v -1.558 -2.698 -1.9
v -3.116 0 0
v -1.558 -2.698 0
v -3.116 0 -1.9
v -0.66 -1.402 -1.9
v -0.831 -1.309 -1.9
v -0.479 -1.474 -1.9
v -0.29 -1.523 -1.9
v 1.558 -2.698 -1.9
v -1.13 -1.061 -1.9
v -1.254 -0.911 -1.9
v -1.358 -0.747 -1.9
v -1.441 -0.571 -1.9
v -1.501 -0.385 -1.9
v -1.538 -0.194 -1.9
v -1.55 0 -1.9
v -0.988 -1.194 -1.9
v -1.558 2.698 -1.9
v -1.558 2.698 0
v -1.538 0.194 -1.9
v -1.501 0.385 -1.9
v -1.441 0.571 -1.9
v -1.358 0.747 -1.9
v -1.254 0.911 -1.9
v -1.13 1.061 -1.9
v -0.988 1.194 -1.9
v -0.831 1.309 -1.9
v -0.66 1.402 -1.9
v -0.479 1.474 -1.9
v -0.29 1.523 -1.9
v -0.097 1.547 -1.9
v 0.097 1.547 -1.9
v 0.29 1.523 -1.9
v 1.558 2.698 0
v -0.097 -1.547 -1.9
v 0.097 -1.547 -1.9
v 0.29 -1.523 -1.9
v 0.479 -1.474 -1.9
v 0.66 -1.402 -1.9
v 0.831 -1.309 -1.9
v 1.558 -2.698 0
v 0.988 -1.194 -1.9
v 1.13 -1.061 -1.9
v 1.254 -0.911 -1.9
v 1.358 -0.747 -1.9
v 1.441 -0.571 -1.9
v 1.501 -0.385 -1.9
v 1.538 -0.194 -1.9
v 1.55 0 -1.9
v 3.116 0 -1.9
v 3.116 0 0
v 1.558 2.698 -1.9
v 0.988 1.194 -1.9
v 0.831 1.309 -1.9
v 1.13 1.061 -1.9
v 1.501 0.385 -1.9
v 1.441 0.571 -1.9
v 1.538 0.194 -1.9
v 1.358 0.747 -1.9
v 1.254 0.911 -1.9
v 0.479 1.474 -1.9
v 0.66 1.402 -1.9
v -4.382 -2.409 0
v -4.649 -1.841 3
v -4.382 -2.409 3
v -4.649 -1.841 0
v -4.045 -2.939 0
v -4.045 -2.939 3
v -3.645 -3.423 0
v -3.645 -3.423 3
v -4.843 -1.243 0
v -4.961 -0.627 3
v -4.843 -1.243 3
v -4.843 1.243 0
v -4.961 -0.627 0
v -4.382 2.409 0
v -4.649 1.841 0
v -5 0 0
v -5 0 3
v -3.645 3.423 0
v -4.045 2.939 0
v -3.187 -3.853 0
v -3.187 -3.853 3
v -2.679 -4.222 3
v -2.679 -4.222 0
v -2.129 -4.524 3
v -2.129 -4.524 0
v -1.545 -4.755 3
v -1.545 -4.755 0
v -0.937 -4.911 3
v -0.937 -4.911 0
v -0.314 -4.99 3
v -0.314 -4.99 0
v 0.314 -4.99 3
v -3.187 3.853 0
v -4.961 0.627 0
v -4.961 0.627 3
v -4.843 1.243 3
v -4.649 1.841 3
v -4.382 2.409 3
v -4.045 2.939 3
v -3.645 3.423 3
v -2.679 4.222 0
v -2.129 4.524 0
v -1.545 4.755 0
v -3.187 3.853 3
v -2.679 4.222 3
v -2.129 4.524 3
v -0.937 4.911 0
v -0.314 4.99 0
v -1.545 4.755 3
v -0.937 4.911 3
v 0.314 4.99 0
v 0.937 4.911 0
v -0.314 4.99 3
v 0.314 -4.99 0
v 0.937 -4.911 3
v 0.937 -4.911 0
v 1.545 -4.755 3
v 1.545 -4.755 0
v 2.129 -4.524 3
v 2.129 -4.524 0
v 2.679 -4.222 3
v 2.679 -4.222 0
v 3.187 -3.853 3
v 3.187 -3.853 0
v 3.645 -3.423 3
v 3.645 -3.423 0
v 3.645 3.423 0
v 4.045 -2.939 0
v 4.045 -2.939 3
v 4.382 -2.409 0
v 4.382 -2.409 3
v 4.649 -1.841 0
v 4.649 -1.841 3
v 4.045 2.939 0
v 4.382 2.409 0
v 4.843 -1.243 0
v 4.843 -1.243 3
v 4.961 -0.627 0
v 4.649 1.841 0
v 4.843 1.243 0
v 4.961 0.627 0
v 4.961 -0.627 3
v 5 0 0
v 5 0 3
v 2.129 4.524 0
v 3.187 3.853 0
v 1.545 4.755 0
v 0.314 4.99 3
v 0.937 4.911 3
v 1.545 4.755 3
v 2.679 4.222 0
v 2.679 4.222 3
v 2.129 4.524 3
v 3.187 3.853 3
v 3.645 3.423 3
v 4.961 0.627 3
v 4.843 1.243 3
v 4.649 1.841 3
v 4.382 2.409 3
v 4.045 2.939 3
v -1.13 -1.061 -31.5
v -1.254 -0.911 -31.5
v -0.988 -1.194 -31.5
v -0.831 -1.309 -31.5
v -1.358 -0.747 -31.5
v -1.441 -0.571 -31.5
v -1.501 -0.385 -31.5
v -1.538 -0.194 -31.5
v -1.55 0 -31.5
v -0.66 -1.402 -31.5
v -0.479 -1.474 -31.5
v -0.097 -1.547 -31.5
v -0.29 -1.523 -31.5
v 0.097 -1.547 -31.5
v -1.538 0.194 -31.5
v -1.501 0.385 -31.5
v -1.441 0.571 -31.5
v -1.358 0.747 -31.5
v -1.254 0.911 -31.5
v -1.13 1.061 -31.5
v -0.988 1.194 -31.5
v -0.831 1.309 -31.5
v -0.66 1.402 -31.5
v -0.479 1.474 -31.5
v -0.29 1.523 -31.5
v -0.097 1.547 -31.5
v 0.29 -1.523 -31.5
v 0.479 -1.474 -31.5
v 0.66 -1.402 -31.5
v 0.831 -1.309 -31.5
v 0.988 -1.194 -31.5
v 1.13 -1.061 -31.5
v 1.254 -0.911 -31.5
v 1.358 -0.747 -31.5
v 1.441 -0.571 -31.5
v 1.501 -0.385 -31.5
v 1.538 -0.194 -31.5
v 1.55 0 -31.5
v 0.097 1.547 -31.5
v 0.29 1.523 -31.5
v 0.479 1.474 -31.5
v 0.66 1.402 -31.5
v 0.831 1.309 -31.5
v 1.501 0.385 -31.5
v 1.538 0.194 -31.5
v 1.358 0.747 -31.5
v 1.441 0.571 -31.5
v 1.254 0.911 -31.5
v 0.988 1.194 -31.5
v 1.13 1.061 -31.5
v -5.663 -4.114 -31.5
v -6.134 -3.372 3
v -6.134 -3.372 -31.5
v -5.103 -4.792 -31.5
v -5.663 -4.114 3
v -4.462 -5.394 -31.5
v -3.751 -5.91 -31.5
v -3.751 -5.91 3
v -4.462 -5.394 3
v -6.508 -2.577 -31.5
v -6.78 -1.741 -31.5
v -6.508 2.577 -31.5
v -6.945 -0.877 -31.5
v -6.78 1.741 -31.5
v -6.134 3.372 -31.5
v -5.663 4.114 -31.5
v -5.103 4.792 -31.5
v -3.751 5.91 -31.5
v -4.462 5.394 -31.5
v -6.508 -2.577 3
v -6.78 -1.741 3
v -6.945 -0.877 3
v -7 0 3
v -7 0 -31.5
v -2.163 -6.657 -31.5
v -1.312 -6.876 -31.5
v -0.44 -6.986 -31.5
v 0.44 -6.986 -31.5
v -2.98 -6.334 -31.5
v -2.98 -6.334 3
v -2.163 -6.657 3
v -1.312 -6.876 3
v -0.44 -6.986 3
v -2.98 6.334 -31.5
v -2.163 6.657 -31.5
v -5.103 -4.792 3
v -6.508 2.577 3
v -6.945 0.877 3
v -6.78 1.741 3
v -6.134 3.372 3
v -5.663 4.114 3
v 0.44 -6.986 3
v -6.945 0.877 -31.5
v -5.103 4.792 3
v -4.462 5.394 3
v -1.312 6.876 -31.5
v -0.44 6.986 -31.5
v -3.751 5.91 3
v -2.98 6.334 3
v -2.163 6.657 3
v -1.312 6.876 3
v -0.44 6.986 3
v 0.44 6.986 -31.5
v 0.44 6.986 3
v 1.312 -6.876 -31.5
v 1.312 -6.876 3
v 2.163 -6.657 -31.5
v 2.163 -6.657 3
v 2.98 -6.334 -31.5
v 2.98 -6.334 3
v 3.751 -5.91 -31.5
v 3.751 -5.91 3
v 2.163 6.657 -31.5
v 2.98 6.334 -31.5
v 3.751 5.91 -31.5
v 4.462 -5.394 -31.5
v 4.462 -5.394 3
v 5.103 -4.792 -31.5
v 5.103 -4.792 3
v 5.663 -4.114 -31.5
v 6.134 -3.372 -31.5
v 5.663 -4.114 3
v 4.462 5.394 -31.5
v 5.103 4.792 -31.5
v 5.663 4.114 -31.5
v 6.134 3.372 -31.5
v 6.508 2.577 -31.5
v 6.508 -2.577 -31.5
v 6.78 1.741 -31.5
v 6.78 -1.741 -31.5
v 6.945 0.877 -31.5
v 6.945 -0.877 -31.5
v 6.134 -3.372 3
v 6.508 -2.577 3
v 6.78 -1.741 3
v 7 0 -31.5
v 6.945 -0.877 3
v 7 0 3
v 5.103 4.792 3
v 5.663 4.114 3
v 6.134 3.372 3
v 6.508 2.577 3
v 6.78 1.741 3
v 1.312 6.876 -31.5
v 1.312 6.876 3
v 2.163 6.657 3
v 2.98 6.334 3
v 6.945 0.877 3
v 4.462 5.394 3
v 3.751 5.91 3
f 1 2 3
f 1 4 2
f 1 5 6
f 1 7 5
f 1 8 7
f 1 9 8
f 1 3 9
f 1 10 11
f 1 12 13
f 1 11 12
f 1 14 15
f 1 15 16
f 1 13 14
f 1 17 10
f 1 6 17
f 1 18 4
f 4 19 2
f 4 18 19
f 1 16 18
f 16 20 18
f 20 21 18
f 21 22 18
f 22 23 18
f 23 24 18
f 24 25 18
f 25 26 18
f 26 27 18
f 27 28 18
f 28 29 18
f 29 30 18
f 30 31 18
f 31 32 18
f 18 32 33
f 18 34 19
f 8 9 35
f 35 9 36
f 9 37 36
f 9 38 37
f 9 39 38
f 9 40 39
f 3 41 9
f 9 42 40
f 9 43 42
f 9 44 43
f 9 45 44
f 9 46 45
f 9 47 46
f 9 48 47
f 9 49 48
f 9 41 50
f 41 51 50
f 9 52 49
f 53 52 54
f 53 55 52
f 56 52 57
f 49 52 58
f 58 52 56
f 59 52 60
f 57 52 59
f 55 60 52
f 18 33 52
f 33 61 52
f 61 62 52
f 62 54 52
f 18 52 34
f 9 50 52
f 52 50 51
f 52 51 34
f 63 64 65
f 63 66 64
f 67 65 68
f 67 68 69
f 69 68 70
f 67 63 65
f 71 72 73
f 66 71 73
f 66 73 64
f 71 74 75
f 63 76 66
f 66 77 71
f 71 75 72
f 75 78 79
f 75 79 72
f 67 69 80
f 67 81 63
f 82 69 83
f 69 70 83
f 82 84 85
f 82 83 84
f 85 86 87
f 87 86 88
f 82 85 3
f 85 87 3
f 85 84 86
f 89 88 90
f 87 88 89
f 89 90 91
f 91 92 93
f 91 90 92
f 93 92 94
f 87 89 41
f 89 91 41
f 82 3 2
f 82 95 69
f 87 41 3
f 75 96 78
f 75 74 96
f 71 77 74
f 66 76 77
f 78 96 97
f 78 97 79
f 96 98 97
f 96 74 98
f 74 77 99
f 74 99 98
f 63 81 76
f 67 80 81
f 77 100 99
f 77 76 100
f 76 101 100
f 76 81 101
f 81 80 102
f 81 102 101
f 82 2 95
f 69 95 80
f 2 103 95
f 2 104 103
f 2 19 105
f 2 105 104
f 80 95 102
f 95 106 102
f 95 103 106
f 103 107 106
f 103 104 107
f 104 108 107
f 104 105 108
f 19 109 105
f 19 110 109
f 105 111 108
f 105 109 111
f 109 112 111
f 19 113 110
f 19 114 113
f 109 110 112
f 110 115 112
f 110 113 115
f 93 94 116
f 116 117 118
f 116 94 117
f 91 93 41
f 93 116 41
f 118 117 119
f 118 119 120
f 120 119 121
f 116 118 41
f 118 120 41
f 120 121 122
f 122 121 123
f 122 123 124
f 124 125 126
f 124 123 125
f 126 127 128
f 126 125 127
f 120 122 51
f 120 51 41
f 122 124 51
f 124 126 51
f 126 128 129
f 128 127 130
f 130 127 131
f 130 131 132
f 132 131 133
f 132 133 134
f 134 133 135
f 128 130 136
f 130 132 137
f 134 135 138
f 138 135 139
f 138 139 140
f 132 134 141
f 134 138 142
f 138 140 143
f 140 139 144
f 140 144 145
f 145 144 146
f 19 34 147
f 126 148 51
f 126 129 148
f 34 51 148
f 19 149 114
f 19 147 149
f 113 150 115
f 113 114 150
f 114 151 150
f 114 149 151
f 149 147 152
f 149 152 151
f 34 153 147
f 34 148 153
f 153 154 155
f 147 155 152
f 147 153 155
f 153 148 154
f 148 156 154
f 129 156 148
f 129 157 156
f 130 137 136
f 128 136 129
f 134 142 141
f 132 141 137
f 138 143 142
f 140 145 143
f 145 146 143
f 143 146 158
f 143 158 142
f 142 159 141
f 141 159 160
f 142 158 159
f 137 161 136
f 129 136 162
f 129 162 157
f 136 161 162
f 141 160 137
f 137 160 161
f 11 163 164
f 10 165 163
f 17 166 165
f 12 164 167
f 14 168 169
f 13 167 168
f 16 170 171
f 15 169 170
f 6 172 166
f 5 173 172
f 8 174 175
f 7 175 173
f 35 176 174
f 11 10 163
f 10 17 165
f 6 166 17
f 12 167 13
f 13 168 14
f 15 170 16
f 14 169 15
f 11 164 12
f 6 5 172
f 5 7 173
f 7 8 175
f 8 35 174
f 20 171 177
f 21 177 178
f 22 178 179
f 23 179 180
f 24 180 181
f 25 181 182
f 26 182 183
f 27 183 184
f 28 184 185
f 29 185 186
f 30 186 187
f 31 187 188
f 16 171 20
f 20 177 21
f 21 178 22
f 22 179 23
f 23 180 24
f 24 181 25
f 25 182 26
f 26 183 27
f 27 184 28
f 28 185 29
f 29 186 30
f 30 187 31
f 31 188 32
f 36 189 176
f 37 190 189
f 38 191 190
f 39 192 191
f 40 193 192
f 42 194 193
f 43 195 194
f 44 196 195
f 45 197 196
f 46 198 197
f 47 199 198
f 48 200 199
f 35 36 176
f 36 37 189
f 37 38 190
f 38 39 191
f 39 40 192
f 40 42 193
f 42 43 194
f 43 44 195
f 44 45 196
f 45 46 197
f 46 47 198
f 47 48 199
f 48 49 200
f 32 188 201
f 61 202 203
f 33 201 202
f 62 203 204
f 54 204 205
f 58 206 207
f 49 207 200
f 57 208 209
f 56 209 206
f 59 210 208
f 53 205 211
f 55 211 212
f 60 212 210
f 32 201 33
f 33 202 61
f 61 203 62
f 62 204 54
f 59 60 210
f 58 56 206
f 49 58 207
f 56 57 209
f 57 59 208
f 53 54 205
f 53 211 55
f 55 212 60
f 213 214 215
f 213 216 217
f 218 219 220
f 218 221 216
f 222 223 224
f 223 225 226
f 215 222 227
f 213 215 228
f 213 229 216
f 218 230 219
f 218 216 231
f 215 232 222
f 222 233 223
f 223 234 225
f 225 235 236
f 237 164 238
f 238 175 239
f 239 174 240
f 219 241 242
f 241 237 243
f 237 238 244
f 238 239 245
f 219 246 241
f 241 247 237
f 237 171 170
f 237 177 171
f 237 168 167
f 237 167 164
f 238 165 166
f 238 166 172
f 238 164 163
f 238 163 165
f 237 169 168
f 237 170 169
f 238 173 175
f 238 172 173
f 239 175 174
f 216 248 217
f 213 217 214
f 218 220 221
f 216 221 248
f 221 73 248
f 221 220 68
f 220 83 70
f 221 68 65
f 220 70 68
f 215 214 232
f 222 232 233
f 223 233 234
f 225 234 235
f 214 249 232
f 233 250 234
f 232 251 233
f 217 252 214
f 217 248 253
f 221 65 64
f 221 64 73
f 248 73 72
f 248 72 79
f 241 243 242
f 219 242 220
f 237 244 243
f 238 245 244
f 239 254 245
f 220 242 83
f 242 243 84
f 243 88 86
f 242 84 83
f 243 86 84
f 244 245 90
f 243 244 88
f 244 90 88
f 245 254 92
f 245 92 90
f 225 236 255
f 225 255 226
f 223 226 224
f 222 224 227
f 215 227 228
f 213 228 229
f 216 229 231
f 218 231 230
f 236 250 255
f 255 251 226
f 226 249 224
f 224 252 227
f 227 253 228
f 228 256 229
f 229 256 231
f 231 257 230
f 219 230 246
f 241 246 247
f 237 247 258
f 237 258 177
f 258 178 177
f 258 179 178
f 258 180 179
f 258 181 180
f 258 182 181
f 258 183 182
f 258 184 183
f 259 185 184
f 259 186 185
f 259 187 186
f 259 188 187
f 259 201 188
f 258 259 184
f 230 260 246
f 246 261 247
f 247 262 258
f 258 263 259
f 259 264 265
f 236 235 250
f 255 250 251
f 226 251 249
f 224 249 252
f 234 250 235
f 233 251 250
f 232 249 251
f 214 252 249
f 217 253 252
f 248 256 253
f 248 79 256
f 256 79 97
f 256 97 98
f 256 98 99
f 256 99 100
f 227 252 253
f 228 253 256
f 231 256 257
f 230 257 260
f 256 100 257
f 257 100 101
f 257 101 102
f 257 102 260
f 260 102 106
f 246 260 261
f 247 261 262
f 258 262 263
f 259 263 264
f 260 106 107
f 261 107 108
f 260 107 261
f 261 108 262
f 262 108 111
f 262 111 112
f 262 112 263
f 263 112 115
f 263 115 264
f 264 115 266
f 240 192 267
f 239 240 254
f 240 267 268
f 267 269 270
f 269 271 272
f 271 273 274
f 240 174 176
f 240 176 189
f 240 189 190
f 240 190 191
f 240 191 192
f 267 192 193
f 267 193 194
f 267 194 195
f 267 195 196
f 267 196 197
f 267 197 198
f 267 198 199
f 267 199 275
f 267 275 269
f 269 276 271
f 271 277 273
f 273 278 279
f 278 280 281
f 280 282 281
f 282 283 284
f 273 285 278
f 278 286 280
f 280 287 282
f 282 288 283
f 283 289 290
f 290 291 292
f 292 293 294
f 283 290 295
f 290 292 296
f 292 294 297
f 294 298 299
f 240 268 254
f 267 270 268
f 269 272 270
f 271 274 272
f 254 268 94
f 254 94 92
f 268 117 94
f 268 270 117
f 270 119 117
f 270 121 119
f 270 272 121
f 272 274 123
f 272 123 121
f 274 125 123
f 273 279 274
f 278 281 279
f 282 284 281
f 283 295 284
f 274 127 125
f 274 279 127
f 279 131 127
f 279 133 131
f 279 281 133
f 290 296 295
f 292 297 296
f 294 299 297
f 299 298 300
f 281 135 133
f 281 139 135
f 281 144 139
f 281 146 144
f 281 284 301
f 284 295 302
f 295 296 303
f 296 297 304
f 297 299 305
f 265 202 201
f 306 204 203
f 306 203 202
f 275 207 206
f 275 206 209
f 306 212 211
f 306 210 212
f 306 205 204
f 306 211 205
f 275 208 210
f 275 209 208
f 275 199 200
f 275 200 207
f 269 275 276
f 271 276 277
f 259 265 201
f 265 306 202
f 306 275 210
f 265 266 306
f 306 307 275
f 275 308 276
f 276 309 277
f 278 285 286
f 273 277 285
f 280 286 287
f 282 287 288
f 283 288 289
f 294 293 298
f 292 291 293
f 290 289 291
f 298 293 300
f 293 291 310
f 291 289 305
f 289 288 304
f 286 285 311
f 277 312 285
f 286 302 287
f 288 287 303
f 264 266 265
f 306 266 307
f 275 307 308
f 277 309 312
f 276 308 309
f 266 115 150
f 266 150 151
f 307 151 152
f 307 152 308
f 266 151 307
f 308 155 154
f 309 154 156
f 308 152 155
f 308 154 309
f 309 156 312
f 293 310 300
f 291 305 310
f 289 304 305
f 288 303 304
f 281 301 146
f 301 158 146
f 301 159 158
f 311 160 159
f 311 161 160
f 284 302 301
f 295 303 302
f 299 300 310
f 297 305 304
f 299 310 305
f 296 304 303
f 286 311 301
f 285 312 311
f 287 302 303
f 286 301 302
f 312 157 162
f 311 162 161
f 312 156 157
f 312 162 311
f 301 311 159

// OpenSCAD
$fn = 50;


difference() {
	union() {
		translate(v = [0, 0, -31.5000000000]) {
			cylinder(h = 34.5000000000, r = 7.0000000000);
		}
	}
	union() {
		translate(v = [0, 0, 0]) {
			rotate(a = [0, 0, 0]) {
				difference() {
					union() {
						translate(v = [0, 0, -1.9000000000]) {
							linear_extrude(height = 1.9000000000) {
								polygon(points = [[3.1158000000, 0.0000000000], [1.5579000000, 2.6983619531], [-1.5579000000, 2.6983619531], [-3.1158000000, 0.0000000000], [-1.5579000000, -2.6983619531], [1.5579000000, -2.6983619531]]);
							}
						}
					}
					union();
				}
			}
		}
		#cylinder(h = 3, r = 5.0000000000);
		#translate(v = [0, 0, -100.0000000000]) {
			cylinder(h = 200, r = 1.5500000000);
		}
	}
}
